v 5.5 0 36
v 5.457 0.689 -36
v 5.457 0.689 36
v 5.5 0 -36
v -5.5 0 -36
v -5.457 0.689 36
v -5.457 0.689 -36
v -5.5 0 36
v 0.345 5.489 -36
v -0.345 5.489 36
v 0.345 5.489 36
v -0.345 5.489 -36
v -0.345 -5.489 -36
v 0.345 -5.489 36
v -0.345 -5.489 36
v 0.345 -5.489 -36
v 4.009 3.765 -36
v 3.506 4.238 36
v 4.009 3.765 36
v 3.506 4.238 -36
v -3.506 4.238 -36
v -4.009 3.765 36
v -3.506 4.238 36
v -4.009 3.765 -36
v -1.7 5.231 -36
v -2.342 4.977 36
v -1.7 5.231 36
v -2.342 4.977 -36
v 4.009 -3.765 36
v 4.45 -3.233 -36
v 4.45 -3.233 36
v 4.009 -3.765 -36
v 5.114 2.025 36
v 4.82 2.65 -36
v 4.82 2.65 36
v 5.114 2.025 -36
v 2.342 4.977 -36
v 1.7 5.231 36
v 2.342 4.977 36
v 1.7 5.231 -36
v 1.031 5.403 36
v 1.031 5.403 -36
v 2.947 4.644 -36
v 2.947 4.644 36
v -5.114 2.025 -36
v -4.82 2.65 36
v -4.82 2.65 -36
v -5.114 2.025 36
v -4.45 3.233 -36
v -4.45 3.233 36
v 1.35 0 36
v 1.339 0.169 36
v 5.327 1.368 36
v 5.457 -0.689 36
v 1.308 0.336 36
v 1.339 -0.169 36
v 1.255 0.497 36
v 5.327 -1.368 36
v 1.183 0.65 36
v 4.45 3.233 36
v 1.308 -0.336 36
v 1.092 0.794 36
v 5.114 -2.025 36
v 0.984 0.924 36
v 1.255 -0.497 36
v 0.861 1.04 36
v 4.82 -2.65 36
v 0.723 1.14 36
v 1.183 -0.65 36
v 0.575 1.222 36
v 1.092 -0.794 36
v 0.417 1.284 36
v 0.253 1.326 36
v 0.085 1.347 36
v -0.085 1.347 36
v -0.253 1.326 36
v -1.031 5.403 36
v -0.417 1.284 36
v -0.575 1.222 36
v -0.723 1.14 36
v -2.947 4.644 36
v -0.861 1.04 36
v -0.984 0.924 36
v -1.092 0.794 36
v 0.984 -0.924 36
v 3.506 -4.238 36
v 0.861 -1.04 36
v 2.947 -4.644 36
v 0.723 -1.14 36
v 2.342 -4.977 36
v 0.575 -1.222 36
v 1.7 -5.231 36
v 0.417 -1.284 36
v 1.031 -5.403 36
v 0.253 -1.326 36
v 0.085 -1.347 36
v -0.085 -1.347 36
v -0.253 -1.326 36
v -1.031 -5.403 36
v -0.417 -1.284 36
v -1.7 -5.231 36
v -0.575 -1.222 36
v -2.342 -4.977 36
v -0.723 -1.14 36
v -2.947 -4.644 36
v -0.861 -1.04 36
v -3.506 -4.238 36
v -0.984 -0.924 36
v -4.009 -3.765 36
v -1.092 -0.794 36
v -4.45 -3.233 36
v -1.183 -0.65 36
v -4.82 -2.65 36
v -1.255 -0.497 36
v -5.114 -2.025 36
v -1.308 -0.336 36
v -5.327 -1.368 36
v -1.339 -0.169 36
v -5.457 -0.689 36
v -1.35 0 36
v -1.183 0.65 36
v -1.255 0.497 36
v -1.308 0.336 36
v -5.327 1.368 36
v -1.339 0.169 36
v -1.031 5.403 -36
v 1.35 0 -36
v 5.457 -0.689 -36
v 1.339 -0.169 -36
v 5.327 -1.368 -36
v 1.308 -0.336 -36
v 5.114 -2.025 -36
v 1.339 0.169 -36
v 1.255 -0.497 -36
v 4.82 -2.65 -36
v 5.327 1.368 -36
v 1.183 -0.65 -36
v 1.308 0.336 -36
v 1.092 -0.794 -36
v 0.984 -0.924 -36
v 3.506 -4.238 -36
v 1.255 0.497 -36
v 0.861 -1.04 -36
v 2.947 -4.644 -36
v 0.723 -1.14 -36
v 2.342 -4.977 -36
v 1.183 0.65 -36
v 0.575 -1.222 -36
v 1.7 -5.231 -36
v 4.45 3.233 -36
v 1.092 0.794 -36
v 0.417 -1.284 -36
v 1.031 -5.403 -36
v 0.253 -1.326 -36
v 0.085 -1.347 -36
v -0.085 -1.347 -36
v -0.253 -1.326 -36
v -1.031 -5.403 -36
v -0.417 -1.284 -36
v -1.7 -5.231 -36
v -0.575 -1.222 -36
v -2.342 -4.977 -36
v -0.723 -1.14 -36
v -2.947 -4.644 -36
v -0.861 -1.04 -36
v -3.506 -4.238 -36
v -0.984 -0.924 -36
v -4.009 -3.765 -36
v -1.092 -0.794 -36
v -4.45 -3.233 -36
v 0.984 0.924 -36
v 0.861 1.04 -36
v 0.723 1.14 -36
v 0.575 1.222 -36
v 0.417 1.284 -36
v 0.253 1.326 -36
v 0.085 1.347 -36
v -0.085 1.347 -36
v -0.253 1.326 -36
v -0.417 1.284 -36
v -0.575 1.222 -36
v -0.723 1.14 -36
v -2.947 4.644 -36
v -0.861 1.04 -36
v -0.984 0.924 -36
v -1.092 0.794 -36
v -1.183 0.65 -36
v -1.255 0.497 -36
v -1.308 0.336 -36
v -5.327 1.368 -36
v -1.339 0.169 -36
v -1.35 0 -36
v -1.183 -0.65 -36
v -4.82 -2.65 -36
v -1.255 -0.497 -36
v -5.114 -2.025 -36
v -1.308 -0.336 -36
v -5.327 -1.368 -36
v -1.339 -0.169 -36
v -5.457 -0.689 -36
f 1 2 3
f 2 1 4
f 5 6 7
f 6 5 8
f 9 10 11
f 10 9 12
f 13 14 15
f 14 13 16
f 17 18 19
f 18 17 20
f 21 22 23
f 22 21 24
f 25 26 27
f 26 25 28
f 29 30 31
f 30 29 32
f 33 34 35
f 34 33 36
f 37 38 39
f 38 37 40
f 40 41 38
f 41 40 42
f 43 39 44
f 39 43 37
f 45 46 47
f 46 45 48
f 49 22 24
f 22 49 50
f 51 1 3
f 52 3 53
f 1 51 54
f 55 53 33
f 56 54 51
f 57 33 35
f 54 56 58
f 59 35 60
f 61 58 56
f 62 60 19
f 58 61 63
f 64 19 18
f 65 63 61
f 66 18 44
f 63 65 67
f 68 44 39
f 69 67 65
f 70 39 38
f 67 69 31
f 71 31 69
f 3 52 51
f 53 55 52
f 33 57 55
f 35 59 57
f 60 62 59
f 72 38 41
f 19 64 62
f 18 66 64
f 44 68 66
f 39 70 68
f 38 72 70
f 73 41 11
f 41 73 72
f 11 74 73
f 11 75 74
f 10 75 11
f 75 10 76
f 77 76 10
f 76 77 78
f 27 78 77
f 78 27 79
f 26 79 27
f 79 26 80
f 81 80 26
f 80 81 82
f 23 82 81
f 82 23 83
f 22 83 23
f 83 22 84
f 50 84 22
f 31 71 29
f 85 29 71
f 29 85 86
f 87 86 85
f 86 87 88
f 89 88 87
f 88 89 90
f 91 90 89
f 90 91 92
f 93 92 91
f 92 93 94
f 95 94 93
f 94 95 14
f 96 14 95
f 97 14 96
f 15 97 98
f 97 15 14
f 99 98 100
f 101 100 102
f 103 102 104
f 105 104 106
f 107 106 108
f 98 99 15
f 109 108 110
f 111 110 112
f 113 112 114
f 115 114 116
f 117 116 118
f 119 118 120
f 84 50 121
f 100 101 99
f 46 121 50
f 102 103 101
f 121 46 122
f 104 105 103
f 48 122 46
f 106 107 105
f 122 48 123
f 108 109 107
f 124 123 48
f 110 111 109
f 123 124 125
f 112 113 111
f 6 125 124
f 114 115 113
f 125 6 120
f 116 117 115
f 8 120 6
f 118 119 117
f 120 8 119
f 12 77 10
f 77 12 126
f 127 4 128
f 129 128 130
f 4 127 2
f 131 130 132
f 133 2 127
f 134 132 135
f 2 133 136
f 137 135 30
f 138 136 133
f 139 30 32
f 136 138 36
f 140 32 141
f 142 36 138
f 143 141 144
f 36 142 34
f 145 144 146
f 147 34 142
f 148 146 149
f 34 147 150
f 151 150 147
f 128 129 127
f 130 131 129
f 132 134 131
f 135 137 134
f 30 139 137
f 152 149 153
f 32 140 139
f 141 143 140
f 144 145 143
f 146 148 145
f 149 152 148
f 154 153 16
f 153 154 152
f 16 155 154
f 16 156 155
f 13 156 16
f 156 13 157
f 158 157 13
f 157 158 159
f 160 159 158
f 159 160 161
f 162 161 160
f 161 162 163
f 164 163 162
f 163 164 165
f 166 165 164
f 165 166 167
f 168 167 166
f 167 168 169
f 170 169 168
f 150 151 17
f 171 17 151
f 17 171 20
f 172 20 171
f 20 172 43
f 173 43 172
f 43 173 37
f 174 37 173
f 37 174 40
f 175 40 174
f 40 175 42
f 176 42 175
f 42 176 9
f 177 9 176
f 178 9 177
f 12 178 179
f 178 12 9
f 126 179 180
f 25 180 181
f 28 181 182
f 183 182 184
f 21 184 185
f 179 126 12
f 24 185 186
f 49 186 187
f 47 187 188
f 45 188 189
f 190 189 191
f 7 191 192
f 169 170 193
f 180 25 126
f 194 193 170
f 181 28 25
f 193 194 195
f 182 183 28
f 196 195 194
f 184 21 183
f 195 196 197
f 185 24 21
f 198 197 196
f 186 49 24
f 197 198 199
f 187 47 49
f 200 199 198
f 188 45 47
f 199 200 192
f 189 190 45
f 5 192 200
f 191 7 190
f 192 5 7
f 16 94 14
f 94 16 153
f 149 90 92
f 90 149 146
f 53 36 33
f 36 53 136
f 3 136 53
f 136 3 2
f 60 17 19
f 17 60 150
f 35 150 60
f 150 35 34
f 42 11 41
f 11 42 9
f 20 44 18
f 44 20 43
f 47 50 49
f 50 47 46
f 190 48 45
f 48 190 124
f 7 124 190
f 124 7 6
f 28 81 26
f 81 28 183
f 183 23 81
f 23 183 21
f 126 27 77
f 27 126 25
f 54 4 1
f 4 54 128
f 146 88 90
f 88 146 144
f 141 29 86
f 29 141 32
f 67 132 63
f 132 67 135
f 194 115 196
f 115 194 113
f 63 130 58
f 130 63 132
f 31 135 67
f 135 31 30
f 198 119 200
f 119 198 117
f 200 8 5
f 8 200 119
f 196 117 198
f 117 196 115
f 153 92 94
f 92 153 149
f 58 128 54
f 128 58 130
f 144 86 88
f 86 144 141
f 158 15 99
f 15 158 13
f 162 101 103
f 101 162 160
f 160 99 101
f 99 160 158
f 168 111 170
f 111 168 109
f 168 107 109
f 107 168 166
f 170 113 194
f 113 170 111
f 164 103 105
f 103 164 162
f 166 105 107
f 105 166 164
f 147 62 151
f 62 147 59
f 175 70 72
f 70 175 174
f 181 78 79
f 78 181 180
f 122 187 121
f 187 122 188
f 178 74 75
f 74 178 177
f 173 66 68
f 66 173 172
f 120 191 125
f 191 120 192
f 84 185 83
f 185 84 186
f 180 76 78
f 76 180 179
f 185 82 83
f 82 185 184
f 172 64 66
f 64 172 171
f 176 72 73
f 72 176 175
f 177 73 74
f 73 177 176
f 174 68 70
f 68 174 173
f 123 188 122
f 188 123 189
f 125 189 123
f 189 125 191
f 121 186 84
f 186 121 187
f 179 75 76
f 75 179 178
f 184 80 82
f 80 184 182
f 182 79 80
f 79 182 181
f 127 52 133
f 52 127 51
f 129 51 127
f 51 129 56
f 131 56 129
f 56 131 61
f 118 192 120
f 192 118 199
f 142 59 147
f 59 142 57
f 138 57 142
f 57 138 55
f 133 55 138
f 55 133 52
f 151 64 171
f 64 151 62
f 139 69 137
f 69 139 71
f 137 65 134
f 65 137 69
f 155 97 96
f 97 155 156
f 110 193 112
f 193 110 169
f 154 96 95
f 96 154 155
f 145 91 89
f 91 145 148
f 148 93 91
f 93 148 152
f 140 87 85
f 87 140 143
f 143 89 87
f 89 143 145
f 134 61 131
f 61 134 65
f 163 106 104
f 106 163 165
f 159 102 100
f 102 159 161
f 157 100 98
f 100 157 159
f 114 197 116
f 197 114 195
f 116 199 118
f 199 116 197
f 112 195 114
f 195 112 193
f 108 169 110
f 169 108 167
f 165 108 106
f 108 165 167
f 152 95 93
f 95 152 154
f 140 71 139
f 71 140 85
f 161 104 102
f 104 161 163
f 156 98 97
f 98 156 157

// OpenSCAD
$fn = 50;


difference() {
	union() {
		translate(v = [0, 0, -36.0000000000]) {
			cylinder(h = 72, r = 5.5000000000);
		}
	}
	union() {
		translate(v = [0, 0, -100.0000000000]) {
			cylinder(h = 200, r = 1.3500000000);
		}
	}
}
